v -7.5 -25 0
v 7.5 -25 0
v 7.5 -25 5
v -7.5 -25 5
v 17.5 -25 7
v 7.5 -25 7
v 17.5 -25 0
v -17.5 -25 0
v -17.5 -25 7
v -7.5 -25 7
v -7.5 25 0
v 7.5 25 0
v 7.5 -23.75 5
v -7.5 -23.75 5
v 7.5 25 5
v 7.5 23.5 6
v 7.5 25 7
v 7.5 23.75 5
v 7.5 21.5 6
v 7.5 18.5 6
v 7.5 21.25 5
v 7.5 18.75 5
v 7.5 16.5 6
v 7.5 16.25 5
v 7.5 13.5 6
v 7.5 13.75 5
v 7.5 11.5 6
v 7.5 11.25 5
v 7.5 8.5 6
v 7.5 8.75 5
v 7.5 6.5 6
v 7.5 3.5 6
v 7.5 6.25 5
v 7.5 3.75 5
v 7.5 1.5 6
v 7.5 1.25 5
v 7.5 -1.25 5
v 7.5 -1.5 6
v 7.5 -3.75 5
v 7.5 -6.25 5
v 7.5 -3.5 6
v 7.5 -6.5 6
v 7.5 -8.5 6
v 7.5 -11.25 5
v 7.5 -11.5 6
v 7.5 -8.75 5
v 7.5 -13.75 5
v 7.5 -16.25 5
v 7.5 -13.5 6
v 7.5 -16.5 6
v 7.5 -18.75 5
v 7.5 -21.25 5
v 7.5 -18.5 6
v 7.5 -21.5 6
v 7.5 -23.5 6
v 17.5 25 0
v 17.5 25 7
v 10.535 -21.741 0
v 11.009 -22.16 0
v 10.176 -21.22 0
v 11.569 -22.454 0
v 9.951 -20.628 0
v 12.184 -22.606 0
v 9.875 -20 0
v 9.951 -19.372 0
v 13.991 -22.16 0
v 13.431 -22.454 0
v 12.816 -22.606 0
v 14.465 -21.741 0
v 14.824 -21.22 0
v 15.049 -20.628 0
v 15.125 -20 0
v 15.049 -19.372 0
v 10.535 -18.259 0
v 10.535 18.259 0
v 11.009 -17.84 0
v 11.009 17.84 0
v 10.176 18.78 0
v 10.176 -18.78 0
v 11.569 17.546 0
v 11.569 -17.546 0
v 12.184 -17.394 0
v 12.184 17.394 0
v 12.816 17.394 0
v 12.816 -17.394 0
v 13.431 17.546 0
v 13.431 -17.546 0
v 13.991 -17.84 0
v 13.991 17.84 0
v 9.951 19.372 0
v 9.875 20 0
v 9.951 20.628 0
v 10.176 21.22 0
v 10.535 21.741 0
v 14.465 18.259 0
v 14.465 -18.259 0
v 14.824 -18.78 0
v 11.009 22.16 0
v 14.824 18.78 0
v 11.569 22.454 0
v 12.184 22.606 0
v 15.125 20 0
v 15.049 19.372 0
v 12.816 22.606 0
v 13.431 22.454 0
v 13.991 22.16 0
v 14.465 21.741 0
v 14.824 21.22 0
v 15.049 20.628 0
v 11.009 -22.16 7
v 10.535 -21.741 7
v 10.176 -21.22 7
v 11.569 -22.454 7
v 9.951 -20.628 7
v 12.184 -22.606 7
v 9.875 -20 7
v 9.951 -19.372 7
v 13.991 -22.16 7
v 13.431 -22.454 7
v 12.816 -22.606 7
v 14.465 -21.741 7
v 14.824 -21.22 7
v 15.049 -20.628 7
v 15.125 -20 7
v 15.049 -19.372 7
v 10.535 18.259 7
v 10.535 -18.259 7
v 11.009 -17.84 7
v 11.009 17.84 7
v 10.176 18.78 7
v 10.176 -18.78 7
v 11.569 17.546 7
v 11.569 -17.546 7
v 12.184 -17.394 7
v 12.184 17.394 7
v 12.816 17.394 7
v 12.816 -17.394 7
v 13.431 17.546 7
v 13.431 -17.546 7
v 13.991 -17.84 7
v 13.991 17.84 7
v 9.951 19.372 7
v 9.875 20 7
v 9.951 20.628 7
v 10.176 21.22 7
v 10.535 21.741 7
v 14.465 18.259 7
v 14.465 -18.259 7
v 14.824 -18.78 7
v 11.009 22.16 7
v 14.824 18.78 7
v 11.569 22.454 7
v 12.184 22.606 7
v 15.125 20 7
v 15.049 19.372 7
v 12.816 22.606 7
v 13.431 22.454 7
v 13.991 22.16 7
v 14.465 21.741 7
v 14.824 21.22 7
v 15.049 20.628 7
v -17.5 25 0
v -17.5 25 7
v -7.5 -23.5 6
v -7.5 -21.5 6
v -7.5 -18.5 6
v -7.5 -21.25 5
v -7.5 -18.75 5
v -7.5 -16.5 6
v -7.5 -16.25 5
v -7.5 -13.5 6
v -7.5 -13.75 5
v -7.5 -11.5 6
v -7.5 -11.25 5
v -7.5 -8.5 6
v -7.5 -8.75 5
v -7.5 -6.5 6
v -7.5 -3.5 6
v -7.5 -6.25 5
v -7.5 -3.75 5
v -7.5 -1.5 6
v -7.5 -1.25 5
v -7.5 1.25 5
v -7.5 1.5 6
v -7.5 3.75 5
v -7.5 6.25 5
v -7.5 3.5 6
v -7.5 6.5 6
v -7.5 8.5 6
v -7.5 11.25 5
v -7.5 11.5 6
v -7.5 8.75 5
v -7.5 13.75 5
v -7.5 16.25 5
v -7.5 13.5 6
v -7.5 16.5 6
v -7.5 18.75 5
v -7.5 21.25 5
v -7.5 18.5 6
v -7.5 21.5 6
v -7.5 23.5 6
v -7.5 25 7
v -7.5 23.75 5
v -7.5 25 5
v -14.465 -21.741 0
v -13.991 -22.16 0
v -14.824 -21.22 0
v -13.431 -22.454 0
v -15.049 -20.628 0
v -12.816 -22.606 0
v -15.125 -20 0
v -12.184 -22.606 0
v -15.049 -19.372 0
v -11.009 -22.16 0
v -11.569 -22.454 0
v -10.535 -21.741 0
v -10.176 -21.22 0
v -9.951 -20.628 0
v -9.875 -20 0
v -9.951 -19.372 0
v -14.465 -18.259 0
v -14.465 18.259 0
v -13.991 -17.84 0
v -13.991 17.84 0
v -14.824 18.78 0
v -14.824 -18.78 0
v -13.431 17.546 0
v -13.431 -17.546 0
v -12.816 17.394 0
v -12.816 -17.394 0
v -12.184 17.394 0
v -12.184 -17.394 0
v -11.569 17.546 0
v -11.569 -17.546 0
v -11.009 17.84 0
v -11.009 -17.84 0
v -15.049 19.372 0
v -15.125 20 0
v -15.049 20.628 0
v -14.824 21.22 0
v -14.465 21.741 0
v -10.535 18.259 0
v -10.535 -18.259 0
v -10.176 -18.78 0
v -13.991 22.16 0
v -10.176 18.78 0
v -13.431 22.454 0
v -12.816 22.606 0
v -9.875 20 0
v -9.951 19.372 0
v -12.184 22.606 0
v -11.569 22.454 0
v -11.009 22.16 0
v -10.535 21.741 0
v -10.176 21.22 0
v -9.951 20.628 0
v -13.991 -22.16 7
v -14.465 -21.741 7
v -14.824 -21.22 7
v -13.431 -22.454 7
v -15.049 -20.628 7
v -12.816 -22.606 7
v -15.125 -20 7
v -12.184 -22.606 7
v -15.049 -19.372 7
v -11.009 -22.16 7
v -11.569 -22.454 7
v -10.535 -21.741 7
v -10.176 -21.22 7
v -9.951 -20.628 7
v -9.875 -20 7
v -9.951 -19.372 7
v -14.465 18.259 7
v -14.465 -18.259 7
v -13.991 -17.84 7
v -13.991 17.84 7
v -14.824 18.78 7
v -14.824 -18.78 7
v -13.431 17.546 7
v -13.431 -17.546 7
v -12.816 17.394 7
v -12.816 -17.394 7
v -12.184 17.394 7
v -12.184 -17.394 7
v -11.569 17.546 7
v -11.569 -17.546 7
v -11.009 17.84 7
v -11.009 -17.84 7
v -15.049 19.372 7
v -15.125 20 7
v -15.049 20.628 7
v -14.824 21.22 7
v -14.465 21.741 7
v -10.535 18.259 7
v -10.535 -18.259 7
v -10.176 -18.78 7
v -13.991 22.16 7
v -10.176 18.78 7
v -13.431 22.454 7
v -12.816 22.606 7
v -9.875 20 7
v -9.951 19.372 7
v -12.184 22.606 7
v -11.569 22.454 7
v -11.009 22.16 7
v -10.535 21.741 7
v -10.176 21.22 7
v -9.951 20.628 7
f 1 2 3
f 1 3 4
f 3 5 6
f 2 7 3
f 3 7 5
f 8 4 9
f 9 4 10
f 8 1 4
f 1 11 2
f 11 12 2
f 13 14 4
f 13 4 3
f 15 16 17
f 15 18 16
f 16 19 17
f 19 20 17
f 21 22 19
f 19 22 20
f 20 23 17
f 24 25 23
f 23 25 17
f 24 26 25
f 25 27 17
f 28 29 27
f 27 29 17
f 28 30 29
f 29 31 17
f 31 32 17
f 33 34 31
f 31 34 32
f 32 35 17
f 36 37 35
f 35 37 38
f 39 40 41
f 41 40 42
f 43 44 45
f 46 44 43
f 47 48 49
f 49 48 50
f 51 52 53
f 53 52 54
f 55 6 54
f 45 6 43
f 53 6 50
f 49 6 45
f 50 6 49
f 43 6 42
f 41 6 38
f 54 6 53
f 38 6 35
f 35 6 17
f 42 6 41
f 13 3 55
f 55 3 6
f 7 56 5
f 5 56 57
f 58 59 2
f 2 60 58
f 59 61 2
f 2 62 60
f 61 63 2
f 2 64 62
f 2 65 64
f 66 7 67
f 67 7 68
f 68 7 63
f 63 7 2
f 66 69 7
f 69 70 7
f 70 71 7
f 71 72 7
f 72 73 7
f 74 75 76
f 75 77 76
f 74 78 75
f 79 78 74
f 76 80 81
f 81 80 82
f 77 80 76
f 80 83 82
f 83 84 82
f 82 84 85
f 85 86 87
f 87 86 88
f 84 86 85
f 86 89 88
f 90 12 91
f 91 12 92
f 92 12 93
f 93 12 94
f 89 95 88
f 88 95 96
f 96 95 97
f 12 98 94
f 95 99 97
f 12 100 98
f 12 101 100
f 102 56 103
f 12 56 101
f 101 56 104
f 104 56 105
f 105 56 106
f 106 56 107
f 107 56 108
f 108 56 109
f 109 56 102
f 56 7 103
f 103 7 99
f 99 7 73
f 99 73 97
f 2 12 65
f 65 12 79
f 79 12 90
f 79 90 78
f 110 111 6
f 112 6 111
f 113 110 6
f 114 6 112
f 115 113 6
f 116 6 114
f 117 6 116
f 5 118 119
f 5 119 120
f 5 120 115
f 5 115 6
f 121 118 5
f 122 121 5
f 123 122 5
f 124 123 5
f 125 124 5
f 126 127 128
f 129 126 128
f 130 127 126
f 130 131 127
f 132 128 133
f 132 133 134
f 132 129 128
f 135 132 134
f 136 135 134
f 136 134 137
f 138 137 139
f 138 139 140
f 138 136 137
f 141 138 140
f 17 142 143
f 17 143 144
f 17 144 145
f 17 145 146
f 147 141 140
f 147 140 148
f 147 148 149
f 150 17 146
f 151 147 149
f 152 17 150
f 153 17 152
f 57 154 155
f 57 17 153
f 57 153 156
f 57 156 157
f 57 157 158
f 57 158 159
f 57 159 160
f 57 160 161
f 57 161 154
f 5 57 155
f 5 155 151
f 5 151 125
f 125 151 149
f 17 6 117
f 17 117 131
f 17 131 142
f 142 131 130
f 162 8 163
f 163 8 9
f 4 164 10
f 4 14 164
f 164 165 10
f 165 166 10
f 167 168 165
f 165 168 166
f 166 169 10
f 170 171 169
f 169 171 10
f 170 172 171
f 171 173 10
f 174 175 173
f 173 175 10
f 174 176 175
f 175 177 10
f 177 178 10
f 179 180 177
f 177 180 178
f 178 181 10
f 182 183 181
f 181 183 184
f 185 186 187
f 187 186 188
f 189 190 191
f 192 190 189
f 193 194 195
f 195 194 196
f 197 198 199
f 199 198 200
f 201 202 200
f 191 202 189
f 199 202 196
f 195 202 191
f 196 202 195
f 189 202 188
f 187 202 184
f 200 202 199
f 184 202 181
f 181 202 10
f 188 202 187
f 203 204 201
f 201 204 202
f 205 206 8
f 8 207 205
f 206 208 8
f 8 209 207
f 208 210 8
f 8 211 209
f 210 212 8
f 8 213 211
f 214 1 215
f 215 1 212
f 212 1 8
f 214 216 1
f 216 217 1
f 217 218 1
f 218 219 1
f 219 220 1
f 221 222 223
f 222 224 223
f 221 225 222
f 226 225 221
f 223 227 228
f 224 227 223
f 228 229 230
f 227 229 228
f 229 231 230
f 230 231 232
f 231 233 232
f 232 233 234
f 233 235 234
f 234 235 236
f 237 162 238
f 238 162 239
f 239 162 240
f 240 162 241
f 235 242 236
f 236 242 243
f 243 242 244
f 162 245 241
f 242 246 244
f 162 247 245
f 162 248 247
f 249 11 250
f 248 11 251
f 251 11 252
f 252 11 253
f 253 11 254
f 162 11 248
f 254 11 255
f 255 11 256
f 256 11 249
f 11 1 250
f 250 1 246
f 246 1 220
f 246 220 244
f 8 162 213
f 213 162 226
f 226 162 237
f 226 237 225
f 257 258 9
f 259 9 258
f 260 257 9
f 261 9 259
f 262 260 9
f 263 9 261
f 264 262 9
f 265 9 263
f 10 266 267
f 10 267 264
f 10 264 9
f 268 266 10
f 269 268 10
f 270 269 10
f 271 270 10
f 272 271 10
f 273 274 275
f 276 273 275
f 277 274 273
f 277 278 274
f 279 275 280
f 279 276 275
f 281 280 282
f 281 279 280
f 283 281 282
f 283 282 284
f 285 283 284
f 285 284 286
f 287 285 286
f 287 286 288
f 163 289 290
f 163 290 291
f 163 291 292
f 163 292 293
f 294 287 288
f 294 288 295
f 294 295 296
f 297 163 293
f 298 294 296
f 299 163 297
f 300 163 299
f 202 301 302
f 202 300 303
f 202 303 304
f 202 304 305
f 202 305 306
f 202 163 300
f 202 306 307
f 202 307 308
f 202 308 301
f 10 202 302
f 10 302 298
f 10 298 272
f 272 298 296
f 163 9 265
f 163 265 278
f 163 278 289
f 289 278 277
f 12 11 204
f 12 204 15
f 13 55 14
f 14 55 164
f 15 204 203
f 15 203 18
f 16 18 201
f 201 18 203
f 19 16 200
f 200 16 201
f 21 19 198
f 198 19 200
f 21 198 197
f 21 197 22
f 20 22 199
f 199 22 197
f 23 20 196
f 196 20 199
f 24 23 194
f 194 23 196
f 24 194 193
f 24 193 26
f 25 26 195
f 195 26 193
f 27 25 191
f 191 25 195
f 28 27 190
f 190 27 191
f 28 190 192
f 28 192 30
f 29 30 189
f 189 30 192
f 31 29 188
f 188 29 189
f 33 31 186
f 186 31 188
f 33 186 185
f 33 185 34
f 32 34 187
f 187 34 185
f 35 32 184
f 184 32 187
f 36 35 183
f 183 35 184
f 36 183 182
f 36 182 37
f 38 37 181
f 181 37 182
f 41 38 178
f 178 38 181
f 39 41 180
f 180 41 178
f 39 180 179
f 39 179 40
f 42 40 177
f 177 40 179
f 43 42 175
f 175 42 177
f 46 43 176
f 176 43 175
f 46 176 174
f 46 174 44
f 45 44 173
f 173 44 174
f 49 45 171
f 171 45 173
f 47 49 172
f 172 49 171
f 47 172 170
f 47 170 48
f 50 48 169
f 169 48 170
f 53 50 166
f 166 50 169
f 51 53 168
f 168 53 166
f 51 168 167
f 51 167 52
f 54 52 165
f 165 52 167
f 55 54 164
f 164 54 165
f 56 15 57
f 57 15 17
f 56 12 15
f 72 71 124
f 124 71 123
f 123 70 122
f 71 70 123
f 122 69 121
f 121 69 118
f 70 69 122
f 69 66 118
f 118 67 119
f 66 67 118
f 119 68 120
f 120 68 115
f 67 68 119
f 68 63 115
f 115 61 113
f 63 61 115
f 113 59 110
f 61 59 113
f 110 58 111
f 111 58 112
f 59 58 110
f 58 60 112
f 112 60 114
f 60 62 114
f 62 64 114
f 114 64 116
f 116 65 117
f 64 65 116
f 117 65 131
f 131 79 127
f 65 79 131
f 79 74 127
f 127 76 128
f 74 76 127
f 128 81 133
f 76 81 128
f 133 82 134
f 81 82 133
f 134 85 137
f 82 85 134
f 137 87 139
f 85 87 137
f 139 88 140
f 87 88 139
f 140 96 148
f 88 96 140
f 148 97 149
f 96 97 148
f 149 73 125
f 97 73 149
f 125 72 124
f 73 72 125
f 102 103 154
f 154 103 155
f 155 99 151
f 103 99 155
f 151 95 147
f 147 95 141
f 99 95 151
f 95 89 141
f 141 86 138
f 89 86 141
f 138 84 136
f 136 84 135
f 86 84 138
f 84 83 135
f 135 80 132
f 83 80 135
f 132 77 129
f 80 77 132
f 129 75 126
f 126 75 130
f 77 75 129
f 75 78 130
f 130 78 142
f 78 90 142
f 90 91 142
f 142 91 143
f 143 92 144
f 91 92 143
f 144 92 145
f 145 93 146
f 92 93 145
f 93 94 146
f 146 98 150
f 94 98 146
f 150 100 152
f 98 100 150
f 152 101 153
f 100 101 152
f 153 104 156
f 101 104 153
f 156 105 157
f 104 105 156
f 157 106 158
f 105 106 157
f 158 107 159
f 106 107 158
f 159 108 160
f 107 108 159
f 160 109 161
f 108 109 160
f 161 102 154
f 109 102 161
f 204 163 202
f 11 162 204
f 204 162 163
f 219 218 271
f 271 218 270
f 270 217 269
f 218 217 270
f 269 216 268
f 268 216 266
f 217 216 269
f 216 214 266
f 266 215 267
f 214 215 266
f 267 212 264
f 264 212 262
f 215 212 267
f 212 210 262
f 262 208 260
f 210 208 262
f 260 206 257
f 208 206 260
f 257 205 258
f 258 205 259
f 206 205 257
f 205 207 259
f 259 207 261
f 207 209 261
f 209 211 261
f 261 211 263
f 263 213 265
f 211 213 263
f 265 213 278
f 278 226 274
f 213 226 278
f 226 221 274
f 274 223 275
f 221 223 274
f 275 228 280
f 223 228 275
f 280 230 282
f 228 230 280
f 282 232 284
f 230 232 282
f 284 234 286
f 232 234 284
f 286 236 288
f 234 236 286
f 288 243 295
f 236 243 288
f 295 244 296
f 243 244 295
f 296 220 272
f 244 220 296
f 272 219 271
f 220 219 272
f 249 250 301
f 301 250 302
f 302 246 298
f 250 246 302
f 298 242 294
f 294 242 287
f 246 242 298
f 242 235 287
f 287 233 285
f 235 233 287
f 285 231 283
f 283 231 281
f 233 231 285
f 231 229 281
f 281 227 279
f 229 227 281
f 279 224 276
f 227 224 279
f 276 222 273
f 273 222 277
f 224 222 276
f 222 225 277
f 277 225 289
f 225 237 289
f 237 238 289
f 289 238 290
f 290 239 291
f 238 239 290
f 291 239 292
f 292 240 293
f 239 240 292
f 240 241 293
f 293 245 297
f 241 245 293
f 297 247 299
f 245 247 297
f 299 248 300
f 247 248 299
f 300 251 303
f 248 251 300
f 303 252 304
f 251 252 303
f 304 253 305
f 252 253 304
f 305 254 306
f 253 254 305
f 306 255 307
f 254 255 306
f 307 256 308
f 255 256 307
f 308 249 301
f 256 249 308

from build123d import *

# Parameters (mm, degrees)
SKETCH_W     = 15
SKETCH_H     = 50
PAD_DEPTH    = 5
PAD001_DEPTH = 15
SKETCH002_W  = 10
SKETCH002_H  = 50
PAD002_DEPTH = 7
SKETCH003_W  = 10
SKETCH003_H  = 50
PAD003_DEPTH = 7
SKETCH004_R  = 2.625
POCKET_DEPTH = 7


with BuildPart() as part:
    # Sketch → Pad (new body)
    with BuildSketch(Plane.XY):
        Rectangle(SKETCH_W, SKETCH_H)
    extrude(amount=PAD_DEPTH)

    # Sketch001 (on Face3 of Pad) → Pad001 (join)
    with BuildSketch(Plane.YZ.offset(7.5)):
        Polygon((-23.75, 5), (-23.5, 6), (-21.5, 6), (-21.25, 5), align=None)
        Polygon((-18.75, 5), (-18.5, 6), (-16.5, 6), (-16.25, 5), align=None)
        Polygon((-13.75, 5), (-13.5, 6), (-11.5, 6), (-11.25, 5), align=None)
        Polygon((-8.75, 5), (-8.5, 6), (-6.5, 6), (-6.25, 5), align=None)
        Polygon((-3.75, 5), (-3.5, 6), (-1.5, 6), (-1.25, 5), align=None)
        Polygon((1.25, 5), (1.5, 6), (3.5, 6), (3.75, 5), align=None)
        Polygon((6.25, 5), (6.5, 6), (8.5, 6), (8.75, 5), align=None)
        Polygon((11.25, 5), (11.5, 6), (13.5, 6), (13.75, 5), align=None)
        Polygon((16.25, 5), (16.5, 6), (18.5, 6), (18.75, 5), align=None)
        Polygon((21.25, 5), (21.5, 6), (23.5, 6), (23.75, 5), align=None)
    extrude(amount=-PAD001_DEPTH)

    # Sketch002 (on Face4 of Pad001) → Pad002 (join)
    with BuildSketch(Plane(origin=(0, 0, 0), x_dir=(1, 0, 0), z_dir=(0, 0, -1))):
        with Locations((12.5, 0)):
            Rectangle(SKETCH002_W, SKETCH002_H)
    extrude(amount=-PAD002_DEPTH)

    # Sketch003 (on Face4 of Pad002) → Pad003 (join)
    with BuildSketch(Plane(origin=(0, 0, 0), x_dir=(1, 0, 0), z_dir=(0, 0, -1))):
        with Locations((-12.5, 0)):
            Rectangle(SKETCH003_W, SKETCH003_H)
    extrude(amount=-PAD003_DEPTH)

    # Sketch004 (on Face12 of Pad003) → Pocket (cut)
    with BuildSketch(Plane(origin=(0, 0, 0), x_dir=(1, 0, 0), z_dir=(0, 0, -1))):
        with Locations((-12.5, 20)):
            Circle(SKETCH004_R)
        with Locations((-12.5, -20)):
            Circle(SKETCH004_R)
        with Locations((12.5, -20)):
            Circle(SKETCH004_R)
        with Locations((12.5, 20)):
            Circle(SKETCH004_R)
    extrude(amount=-POCKET_DEPTH, mode=Mode.SUBTRACT)


solid = part.part
